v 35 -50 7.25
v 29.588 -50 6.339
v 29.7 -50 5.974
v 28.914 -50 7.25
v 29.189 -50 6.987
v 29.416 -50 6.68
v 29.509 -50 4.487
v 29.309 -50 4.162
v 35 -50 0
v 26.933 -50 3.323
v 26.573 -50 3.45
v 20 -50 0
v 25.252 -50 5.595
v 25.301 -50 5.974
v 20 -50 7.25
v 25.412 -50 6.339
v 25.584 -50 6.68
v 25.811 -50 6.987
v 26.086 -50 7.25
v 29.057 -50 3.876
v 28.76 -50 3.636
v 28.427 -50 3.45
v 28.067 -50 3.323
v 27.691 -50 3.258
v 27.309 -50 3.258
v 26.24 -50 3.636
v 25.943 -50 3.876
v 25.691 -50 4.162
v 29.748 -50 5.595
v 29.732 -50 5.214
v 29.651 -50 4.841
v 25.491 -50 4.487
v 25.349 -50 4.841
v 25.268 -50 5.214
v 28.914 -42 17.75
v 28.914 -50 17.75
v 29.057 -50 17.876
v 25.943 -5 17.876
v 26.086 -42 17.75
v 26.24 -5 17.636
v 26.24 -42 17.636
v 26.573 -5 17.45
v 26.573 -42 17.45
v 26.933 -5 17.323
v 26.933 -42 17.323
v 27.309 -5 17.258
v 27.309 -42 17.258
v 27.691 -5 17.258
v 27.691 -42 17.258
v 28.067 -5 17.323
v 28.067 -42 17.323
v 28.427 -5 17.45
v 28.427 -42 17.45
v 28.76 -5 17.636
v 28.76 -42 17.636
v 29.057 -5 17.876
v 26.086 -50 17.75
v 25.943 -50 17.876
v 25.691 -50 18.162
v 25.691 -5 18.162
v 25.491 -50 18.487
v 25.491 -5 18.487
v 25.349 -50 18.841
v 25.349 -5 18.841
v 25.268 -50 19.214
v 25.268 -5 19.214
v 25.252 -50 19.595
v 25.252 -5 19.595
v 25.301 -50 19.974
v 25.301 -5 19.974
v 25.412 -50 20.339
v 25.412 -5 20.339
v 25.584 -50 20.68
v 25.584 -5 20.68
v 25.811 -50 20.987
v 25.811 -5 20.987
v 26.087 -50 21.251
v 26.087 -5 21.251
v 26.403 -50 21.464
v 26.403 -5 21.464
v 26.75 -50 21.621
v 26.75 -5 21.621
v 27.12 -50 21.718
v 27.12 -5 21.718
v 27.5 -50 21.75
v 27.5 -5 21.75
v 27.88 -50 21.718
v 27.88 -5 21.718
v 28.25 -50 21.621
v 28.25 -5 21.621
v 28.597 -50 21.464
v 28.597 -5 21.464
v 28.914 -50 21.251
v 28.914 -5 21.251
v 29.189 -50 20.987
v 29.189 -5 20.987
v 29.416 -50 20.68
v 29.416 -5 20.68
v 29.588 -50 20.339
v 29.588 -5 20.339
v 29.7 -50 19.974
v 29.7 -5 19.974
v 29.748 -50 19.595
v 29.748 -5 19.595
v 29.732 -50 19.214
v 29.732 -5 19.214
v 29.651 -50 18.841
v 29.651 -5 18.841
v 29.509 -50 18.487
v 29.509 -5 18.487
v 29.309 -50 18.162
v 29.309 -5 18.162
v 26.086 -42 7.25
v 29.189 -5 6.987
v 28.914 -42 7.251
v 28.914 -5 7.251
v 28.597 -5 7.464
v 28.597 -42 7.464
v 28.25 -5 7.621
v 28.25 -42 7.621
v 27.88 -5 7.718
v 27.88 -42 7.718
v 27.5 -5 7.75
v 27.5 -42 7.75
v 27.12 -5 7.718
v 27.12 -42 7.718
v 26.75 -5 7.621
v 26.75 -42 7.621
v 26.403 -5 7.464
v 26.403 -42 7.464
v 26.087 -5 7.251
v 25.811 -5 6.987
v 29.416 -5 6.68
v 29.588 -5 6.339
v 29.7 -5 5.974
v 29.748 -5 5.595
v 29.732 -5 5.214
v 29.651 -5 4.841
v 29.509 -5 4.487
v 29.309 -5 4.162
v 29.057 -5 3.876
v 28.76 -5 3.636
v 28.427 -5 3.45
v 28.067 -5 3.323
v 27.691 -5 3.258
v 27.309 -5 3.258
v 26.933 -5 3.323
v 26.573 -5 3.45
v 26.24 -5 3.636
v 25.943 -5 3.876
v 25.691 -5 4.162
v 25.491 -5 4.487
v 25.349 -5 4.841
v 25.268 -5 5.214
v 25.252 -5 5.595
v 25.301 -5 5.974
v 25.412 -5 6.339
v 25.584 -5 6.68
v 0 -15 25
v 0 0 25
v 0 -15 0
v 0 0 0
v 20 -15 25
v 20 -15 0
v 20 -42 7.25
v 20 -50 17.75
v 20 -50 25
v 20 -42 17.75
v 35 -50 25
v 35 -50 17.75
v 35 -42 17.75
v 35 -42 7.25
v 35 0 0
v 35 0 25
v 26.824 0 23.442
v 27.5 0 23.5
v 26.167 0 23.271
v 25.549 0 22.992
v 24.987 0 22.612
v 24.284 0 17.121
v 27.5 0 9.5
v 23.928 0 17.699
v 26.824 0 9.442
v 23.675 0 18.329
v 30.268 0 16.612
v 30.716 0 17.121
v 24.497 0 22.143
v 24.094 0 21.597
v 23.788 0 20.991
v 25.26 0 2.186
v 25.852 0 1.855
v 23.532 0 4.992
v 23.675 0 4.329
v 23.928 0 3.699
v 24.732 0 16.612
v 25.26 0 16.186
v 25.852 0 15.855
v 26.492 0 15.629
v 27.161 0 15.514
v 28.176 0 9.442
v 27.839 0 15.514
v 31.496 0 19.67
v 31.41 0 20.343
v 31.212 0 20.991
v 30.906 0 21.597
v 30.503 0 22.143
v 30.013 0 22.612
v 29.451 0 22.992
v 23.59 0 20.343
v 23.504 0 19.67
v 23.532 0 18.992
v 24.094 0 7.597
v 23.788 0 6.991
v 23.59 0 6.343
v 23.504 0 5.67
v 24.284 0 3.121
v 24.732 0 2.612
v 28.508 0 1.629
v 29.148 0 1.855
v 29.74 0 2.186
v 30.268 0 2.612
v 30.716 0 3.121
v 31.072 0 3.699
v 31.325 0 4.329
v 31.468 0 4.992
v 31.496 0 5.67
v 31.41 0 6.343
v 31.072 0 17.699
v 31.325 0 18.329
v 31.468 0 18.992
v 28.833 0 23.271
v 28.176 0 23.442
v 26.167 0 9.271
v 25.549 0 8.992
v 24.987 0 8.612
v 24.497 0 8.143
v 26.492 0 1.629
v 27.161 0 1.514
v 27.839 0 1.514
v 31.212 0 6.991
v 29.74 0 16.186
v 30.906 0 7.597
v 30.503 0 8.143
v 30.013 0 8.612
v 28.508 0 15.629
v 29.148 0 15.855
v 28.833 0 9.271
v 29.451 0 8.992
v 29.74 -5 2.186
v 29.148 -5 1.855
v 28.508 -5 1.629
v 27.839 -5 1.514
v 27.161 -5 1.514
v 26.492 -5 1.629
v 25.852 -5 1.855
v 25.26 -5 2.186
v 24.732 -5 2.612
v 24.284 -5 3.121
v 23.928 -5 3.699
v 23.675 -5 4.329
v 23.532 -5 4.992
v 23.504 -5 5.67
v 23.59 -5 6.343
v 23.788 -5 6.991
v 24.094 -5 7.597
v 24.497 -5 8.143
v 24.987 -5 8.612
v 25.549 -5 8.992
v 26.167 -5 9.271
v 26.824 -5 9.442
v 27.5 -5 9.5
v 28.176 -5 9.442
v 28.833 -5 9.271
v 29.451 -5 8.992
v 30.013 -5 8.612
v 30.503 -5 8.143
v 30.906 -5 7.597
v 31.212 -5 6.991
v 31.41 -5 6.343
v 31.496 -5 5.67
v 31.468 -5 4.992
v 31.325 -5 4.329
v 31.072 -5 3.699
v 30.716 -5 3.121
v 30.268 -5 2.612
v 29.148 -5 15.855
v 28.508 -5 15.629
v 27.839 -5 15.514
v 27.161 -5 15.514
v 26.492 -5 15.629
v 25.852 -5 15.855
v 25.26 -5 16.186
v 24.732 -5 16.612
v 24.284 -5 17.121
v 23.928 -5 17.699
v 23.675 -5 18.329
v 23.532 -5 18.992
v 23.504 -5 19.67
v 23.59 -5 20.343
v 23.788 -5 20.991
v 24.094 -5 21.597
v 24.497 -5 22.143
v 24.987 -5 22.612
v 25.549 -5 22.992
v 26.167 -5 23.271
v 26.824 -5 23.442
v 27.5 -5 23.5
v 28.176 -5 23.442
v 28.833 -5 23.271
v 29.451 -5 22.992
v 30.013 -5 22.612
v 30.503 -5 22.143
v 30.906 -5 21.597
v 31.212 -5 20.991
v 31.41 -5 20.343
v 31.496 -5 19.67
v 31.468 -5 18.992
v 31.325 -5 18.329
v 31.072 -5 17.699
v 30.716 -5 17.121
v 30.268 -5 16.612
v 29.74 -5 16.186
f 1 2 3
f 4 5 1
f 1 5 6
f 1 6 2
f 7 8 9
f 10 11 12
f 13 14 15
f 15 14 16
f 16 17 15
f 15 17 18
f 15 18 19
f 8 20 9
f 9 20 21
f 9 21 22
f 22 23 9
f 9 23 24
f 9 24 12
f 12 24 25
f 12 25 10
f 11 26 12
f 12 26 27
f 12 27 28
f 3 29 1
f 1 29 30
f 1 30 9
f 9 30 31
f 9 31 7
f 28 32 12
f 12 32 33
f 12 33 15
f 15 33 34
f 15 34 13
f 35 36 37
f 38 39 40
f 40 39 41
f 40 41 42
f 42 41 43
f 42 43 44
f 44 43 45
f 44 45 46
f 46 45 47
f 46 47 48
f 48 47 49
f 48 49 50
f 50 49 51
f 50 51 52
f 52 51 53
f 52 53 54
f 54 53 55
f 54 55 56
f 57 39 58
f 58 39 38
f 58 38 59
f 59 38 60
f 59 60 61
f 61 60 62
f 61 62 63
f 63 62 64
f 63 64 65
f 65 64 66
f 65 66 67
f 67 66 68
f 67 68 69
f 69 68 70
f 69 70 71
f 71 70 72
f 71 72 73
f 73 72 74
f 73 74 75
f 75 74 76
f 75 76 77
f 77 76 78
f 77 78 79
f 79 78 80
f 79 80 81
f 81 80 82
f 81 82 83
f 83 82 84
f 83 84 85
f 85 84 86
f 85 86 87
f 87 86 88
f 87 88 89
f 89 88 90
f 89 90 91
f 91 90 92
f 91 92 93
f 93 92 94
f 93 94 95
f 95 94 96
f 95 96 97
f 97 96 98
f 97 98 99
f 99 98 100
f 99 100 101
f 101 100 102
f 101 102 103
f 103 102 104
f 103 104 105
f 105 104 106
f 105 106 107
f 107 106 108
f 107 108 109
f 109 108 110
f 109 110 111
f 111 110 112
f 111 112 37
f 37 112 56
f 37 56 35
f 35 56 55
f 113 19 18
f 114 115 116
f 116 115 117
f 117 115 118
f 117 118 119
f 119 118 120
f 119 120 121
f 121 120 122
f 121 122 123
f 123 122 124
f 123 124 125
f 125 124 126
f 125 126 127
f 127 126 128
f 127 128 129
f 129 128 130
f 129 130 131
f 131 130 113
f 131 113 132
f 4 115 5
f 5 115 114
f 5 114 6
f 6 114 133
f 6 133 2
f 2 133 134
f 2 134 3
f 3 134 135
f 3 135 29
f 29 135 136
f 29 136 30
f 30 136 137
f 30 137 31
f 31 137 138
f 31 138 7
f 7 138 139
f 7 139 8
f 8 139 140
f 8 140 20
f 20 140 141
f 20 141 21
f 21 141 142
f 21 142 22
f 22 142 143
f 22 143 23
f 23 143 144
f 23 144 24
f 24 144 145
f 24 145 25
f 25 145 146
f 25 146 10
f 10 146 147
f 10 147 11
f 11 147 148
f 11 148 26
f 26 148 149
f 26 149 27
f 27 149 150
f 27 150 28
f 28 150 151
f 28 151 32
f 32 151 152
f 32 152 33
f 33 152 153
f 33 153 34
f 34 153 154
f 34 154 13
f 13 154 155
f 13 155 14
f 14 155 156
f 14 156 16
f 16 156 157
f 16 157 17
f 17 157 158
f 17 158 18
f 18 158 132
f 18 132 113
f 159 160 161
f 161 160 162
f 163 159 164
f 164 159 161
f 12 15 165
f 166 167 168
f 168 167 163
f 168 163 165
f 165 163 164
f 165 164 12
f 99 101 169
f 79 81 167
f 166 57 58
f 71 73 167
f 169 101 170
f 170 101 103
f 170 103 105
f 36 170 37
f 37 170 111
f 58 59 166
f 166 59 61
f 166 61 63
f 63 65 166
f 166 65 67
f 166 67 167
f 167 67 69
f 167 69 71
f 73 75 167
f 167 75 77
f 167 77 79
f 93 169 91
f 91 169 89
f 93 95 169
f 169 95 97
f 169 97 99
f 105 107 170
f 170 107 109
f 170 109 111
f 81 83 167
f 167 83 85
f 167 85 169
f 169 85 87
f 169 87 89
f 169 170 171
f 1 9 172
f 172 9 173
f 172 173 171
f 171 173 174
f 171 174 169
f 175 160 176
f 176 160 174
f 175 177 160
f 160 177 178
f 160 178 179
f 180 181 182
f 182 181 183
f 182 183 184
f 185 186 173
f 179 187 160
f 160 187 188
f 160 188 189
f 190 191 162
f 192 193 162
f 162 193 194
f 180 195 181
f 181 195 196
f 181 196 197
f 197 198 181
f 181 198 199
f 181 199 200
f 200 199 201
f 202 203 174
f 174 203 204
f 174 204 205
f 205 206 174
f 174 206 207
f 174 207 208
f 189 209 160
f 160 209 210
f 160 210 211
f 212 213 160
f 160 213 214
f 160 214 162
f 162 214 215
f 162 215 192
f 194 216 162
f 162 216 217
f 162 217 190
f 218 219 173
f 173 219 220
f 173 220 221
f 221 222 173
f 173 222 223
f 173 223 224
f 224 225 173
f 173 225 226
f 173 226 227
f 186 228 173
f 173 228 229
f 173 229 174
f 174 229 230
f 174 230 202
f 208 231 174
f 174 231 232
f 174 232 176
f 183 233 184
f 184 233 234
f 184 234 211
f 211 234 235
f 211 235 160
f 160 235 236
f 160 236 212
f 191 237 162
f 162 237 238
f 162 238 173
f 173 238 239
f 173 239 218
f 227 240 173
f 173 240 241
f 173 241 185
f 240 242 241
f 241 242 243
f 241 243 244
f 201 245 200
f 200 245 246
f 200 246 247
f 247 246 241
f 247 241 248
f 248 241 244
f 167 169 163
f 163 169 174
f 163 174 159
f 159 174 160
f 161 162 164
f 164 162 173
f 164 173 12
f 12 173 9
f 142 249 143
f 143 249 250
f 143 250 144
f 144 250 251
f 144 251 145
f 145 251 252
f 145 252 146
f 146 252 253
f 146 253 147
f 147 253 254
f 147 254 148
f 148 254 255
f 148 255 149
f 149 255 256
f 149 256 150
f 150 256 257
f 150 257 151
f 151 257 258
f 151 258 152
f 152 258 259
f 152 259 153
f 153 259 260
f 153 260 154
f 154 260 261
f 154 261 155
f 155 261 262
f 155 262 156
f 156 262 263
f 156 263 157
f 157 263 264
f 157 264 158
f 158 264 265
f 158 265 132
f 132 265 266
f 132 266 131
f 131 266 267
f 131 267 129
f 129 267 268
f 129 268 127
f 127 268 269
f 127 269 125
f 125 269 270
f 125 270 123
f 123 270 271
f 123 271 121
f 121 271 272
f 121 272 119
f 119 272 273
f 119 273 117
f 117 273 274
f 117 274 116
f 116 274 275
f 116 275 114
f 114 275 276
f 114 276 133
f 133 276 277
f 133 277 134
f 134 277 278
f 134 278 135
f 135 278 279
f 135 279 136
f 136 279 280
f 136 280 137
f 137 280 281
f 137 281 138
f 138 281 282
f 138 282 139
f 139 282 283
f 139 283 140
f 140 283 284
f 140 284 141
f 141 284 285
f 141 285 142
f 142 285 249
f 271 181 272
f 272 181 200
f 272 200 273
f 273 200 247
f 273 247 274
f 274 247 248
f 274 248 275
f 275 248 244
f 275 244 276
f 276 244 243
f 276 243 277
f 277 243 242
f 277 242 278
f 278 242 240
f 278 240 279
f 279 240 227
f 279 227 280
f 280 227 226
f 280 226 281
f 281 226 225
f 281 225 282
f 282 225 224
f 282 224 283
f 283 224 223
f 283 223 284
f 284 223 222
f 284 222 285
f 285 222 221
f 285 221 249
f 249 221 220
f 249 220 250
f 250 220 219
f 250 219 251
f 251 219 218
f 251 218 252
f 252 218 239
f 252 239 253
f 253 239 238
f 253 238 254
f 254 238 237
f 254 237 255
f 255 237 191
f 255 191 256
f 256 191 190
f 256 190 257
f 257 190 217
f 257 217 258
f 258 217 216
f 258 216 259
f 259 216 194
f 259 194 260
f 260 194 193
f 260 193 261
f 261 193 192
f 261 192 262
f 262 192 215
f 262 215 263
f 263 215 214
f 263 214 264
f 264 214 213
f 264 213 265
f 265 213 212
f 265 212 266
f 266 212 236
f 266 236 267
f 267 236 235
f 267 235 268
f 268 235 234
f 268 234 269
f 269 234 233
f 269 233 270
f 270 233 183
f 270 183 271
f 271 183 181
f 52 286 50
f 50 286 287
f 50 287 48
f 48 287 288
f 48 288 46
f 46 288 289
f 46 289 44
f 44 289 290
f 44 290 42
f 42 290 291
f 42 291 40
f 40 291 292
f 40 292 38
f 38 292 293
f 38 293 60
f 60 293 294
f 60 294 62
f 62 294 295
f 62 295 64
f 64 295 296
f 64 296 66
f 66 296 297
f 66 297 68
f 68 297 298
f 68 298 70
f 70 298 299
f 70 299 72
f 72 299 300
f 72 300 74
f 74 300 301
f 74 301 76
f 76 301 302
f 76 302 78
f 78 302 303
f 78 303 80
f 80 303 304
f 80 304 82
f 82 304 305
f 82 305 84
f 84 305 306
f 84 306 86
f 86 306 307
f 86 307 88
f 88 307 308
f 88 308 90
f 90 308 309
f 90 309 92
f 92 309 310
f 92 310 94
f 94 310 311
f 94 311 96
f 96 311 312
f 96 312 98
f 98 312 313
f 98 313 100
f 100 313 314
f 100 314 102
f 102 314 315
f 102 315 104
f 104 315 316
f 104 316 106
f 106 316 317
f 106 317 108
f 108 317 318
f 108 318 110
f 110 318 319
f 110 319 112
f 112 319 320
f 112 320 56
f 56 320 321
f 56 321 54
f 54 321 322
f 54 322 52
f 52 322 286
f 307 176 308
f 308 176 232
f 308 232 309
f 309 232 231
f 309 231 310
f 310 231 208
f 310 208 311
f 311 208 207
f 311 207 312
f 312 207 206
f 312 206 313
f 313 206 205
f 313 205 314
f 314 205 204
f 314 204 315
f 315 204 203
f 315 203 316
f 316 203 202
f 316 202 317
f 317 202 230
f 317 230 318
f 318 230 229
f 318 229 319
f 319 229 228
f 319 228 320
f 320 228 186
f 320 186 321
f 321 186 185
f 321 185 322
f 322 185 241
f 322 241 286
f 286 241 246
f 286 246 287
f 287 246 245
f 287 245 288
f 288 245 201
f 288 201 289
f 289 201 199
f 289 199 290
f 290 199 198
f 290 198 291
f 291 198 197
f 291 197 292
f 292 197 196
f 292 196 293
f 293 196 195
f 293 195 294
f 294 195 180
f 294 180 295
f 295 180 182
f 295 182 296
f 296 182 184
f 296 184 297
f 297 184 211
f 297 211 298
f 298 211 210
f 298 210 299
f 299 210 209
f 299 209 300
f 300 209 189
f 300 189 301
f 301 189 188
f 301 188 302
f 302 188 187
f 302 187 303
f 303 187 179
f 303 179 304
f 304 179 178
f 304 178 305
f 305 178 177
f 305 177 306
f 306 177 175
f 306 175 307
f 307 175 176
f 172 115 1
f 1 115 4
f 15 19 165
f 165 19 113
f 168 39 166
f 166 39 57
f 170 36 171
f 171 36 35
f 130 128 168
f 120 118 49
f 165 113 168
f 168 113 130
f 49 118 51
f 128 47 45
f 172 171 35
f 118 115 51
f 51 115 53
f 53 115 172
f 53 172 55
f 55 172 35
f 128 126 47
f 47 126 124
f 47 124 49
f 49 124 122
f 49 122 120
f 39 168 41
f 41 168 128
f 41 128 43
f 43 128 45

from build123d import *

# Parameters (mm, degrees)
EXTRUDE_1_DEPTH     = 25
SKETCH_2_R          = 2.25
CUT_EXTRUDE_1_DEPTH = 66.954529791
SKETCH_3_R          = 4
CUT_EXTRUDE_2_DEPTH = 5
SKETCH_4_W          = 10.5
SKETCH_4_H          = 16
CUT_EXTRUDE_5_DEPTH = 66.954529791


with BuildPart() as part:
    # 草图1 → 凸台-拉伸1 (new body)
    with BuildSketch(Plane.XY):
        Polygon((0, 0), (35, 0), (35, -50), (20, -50), (20, -15), (0, -15), align=None)
    extrude(amount=EXTRUDE_1_DEPTH)

    # 草图2 → 切除-拉伸1 (cut, through all)
    with BuildSketch(Plane(origin=(0, 0, 0), x_dir=(1, 0, 0), z_dir=(0, 1, 0))):
        with Locations(Location((27.5, -5.5, 0), (0, 0, 270))):
            Circle(SKETCH_2_R)
        with Locations(Location((27.5, -19.5, 0), (0, 0, 270))):
            Circle(SKETCH_2_R)
    extrude(amount=-CUT_EXTRUDE_1_DEPTH, mode=Mode.SUBTRACT)

    # 草图3 → 切除-拉伸2 (cut)
    with BuildSketch(Plane(origin=(0, 0, 0), x_dir=(1, 0, 0), z_dir=(0, 1, 0))):
        with Locations(Location((27.5, -5.5, 0), (0, 0, 270))):
            Circle(SKETCH_3_R)
        with Locations(Location((27.5, -19.5, 0), (0, 0, 270))):
            Circle(SKETCH_3_R)
    extrude(amount=-CUT_EXTRUDE_2_DEPTH, mode=Mode.SUBTRACT)

    # 草图4 → 切除-拉伸5 (cut, through all)
    with BuildSketch(Plane(origin=(35, 0, 0), x_dir=(0, 0, -1), z_dir=(1, 0, 0))):
        with Locations((-12.5, -50)):
            Rectangle(SKETCH_4_W, SKETCH_4_H)
    extrude(amount=-CUT_EXTRUDE_5_DEPTH, mode=Mode.SUBTRACT)


solid = part.part
